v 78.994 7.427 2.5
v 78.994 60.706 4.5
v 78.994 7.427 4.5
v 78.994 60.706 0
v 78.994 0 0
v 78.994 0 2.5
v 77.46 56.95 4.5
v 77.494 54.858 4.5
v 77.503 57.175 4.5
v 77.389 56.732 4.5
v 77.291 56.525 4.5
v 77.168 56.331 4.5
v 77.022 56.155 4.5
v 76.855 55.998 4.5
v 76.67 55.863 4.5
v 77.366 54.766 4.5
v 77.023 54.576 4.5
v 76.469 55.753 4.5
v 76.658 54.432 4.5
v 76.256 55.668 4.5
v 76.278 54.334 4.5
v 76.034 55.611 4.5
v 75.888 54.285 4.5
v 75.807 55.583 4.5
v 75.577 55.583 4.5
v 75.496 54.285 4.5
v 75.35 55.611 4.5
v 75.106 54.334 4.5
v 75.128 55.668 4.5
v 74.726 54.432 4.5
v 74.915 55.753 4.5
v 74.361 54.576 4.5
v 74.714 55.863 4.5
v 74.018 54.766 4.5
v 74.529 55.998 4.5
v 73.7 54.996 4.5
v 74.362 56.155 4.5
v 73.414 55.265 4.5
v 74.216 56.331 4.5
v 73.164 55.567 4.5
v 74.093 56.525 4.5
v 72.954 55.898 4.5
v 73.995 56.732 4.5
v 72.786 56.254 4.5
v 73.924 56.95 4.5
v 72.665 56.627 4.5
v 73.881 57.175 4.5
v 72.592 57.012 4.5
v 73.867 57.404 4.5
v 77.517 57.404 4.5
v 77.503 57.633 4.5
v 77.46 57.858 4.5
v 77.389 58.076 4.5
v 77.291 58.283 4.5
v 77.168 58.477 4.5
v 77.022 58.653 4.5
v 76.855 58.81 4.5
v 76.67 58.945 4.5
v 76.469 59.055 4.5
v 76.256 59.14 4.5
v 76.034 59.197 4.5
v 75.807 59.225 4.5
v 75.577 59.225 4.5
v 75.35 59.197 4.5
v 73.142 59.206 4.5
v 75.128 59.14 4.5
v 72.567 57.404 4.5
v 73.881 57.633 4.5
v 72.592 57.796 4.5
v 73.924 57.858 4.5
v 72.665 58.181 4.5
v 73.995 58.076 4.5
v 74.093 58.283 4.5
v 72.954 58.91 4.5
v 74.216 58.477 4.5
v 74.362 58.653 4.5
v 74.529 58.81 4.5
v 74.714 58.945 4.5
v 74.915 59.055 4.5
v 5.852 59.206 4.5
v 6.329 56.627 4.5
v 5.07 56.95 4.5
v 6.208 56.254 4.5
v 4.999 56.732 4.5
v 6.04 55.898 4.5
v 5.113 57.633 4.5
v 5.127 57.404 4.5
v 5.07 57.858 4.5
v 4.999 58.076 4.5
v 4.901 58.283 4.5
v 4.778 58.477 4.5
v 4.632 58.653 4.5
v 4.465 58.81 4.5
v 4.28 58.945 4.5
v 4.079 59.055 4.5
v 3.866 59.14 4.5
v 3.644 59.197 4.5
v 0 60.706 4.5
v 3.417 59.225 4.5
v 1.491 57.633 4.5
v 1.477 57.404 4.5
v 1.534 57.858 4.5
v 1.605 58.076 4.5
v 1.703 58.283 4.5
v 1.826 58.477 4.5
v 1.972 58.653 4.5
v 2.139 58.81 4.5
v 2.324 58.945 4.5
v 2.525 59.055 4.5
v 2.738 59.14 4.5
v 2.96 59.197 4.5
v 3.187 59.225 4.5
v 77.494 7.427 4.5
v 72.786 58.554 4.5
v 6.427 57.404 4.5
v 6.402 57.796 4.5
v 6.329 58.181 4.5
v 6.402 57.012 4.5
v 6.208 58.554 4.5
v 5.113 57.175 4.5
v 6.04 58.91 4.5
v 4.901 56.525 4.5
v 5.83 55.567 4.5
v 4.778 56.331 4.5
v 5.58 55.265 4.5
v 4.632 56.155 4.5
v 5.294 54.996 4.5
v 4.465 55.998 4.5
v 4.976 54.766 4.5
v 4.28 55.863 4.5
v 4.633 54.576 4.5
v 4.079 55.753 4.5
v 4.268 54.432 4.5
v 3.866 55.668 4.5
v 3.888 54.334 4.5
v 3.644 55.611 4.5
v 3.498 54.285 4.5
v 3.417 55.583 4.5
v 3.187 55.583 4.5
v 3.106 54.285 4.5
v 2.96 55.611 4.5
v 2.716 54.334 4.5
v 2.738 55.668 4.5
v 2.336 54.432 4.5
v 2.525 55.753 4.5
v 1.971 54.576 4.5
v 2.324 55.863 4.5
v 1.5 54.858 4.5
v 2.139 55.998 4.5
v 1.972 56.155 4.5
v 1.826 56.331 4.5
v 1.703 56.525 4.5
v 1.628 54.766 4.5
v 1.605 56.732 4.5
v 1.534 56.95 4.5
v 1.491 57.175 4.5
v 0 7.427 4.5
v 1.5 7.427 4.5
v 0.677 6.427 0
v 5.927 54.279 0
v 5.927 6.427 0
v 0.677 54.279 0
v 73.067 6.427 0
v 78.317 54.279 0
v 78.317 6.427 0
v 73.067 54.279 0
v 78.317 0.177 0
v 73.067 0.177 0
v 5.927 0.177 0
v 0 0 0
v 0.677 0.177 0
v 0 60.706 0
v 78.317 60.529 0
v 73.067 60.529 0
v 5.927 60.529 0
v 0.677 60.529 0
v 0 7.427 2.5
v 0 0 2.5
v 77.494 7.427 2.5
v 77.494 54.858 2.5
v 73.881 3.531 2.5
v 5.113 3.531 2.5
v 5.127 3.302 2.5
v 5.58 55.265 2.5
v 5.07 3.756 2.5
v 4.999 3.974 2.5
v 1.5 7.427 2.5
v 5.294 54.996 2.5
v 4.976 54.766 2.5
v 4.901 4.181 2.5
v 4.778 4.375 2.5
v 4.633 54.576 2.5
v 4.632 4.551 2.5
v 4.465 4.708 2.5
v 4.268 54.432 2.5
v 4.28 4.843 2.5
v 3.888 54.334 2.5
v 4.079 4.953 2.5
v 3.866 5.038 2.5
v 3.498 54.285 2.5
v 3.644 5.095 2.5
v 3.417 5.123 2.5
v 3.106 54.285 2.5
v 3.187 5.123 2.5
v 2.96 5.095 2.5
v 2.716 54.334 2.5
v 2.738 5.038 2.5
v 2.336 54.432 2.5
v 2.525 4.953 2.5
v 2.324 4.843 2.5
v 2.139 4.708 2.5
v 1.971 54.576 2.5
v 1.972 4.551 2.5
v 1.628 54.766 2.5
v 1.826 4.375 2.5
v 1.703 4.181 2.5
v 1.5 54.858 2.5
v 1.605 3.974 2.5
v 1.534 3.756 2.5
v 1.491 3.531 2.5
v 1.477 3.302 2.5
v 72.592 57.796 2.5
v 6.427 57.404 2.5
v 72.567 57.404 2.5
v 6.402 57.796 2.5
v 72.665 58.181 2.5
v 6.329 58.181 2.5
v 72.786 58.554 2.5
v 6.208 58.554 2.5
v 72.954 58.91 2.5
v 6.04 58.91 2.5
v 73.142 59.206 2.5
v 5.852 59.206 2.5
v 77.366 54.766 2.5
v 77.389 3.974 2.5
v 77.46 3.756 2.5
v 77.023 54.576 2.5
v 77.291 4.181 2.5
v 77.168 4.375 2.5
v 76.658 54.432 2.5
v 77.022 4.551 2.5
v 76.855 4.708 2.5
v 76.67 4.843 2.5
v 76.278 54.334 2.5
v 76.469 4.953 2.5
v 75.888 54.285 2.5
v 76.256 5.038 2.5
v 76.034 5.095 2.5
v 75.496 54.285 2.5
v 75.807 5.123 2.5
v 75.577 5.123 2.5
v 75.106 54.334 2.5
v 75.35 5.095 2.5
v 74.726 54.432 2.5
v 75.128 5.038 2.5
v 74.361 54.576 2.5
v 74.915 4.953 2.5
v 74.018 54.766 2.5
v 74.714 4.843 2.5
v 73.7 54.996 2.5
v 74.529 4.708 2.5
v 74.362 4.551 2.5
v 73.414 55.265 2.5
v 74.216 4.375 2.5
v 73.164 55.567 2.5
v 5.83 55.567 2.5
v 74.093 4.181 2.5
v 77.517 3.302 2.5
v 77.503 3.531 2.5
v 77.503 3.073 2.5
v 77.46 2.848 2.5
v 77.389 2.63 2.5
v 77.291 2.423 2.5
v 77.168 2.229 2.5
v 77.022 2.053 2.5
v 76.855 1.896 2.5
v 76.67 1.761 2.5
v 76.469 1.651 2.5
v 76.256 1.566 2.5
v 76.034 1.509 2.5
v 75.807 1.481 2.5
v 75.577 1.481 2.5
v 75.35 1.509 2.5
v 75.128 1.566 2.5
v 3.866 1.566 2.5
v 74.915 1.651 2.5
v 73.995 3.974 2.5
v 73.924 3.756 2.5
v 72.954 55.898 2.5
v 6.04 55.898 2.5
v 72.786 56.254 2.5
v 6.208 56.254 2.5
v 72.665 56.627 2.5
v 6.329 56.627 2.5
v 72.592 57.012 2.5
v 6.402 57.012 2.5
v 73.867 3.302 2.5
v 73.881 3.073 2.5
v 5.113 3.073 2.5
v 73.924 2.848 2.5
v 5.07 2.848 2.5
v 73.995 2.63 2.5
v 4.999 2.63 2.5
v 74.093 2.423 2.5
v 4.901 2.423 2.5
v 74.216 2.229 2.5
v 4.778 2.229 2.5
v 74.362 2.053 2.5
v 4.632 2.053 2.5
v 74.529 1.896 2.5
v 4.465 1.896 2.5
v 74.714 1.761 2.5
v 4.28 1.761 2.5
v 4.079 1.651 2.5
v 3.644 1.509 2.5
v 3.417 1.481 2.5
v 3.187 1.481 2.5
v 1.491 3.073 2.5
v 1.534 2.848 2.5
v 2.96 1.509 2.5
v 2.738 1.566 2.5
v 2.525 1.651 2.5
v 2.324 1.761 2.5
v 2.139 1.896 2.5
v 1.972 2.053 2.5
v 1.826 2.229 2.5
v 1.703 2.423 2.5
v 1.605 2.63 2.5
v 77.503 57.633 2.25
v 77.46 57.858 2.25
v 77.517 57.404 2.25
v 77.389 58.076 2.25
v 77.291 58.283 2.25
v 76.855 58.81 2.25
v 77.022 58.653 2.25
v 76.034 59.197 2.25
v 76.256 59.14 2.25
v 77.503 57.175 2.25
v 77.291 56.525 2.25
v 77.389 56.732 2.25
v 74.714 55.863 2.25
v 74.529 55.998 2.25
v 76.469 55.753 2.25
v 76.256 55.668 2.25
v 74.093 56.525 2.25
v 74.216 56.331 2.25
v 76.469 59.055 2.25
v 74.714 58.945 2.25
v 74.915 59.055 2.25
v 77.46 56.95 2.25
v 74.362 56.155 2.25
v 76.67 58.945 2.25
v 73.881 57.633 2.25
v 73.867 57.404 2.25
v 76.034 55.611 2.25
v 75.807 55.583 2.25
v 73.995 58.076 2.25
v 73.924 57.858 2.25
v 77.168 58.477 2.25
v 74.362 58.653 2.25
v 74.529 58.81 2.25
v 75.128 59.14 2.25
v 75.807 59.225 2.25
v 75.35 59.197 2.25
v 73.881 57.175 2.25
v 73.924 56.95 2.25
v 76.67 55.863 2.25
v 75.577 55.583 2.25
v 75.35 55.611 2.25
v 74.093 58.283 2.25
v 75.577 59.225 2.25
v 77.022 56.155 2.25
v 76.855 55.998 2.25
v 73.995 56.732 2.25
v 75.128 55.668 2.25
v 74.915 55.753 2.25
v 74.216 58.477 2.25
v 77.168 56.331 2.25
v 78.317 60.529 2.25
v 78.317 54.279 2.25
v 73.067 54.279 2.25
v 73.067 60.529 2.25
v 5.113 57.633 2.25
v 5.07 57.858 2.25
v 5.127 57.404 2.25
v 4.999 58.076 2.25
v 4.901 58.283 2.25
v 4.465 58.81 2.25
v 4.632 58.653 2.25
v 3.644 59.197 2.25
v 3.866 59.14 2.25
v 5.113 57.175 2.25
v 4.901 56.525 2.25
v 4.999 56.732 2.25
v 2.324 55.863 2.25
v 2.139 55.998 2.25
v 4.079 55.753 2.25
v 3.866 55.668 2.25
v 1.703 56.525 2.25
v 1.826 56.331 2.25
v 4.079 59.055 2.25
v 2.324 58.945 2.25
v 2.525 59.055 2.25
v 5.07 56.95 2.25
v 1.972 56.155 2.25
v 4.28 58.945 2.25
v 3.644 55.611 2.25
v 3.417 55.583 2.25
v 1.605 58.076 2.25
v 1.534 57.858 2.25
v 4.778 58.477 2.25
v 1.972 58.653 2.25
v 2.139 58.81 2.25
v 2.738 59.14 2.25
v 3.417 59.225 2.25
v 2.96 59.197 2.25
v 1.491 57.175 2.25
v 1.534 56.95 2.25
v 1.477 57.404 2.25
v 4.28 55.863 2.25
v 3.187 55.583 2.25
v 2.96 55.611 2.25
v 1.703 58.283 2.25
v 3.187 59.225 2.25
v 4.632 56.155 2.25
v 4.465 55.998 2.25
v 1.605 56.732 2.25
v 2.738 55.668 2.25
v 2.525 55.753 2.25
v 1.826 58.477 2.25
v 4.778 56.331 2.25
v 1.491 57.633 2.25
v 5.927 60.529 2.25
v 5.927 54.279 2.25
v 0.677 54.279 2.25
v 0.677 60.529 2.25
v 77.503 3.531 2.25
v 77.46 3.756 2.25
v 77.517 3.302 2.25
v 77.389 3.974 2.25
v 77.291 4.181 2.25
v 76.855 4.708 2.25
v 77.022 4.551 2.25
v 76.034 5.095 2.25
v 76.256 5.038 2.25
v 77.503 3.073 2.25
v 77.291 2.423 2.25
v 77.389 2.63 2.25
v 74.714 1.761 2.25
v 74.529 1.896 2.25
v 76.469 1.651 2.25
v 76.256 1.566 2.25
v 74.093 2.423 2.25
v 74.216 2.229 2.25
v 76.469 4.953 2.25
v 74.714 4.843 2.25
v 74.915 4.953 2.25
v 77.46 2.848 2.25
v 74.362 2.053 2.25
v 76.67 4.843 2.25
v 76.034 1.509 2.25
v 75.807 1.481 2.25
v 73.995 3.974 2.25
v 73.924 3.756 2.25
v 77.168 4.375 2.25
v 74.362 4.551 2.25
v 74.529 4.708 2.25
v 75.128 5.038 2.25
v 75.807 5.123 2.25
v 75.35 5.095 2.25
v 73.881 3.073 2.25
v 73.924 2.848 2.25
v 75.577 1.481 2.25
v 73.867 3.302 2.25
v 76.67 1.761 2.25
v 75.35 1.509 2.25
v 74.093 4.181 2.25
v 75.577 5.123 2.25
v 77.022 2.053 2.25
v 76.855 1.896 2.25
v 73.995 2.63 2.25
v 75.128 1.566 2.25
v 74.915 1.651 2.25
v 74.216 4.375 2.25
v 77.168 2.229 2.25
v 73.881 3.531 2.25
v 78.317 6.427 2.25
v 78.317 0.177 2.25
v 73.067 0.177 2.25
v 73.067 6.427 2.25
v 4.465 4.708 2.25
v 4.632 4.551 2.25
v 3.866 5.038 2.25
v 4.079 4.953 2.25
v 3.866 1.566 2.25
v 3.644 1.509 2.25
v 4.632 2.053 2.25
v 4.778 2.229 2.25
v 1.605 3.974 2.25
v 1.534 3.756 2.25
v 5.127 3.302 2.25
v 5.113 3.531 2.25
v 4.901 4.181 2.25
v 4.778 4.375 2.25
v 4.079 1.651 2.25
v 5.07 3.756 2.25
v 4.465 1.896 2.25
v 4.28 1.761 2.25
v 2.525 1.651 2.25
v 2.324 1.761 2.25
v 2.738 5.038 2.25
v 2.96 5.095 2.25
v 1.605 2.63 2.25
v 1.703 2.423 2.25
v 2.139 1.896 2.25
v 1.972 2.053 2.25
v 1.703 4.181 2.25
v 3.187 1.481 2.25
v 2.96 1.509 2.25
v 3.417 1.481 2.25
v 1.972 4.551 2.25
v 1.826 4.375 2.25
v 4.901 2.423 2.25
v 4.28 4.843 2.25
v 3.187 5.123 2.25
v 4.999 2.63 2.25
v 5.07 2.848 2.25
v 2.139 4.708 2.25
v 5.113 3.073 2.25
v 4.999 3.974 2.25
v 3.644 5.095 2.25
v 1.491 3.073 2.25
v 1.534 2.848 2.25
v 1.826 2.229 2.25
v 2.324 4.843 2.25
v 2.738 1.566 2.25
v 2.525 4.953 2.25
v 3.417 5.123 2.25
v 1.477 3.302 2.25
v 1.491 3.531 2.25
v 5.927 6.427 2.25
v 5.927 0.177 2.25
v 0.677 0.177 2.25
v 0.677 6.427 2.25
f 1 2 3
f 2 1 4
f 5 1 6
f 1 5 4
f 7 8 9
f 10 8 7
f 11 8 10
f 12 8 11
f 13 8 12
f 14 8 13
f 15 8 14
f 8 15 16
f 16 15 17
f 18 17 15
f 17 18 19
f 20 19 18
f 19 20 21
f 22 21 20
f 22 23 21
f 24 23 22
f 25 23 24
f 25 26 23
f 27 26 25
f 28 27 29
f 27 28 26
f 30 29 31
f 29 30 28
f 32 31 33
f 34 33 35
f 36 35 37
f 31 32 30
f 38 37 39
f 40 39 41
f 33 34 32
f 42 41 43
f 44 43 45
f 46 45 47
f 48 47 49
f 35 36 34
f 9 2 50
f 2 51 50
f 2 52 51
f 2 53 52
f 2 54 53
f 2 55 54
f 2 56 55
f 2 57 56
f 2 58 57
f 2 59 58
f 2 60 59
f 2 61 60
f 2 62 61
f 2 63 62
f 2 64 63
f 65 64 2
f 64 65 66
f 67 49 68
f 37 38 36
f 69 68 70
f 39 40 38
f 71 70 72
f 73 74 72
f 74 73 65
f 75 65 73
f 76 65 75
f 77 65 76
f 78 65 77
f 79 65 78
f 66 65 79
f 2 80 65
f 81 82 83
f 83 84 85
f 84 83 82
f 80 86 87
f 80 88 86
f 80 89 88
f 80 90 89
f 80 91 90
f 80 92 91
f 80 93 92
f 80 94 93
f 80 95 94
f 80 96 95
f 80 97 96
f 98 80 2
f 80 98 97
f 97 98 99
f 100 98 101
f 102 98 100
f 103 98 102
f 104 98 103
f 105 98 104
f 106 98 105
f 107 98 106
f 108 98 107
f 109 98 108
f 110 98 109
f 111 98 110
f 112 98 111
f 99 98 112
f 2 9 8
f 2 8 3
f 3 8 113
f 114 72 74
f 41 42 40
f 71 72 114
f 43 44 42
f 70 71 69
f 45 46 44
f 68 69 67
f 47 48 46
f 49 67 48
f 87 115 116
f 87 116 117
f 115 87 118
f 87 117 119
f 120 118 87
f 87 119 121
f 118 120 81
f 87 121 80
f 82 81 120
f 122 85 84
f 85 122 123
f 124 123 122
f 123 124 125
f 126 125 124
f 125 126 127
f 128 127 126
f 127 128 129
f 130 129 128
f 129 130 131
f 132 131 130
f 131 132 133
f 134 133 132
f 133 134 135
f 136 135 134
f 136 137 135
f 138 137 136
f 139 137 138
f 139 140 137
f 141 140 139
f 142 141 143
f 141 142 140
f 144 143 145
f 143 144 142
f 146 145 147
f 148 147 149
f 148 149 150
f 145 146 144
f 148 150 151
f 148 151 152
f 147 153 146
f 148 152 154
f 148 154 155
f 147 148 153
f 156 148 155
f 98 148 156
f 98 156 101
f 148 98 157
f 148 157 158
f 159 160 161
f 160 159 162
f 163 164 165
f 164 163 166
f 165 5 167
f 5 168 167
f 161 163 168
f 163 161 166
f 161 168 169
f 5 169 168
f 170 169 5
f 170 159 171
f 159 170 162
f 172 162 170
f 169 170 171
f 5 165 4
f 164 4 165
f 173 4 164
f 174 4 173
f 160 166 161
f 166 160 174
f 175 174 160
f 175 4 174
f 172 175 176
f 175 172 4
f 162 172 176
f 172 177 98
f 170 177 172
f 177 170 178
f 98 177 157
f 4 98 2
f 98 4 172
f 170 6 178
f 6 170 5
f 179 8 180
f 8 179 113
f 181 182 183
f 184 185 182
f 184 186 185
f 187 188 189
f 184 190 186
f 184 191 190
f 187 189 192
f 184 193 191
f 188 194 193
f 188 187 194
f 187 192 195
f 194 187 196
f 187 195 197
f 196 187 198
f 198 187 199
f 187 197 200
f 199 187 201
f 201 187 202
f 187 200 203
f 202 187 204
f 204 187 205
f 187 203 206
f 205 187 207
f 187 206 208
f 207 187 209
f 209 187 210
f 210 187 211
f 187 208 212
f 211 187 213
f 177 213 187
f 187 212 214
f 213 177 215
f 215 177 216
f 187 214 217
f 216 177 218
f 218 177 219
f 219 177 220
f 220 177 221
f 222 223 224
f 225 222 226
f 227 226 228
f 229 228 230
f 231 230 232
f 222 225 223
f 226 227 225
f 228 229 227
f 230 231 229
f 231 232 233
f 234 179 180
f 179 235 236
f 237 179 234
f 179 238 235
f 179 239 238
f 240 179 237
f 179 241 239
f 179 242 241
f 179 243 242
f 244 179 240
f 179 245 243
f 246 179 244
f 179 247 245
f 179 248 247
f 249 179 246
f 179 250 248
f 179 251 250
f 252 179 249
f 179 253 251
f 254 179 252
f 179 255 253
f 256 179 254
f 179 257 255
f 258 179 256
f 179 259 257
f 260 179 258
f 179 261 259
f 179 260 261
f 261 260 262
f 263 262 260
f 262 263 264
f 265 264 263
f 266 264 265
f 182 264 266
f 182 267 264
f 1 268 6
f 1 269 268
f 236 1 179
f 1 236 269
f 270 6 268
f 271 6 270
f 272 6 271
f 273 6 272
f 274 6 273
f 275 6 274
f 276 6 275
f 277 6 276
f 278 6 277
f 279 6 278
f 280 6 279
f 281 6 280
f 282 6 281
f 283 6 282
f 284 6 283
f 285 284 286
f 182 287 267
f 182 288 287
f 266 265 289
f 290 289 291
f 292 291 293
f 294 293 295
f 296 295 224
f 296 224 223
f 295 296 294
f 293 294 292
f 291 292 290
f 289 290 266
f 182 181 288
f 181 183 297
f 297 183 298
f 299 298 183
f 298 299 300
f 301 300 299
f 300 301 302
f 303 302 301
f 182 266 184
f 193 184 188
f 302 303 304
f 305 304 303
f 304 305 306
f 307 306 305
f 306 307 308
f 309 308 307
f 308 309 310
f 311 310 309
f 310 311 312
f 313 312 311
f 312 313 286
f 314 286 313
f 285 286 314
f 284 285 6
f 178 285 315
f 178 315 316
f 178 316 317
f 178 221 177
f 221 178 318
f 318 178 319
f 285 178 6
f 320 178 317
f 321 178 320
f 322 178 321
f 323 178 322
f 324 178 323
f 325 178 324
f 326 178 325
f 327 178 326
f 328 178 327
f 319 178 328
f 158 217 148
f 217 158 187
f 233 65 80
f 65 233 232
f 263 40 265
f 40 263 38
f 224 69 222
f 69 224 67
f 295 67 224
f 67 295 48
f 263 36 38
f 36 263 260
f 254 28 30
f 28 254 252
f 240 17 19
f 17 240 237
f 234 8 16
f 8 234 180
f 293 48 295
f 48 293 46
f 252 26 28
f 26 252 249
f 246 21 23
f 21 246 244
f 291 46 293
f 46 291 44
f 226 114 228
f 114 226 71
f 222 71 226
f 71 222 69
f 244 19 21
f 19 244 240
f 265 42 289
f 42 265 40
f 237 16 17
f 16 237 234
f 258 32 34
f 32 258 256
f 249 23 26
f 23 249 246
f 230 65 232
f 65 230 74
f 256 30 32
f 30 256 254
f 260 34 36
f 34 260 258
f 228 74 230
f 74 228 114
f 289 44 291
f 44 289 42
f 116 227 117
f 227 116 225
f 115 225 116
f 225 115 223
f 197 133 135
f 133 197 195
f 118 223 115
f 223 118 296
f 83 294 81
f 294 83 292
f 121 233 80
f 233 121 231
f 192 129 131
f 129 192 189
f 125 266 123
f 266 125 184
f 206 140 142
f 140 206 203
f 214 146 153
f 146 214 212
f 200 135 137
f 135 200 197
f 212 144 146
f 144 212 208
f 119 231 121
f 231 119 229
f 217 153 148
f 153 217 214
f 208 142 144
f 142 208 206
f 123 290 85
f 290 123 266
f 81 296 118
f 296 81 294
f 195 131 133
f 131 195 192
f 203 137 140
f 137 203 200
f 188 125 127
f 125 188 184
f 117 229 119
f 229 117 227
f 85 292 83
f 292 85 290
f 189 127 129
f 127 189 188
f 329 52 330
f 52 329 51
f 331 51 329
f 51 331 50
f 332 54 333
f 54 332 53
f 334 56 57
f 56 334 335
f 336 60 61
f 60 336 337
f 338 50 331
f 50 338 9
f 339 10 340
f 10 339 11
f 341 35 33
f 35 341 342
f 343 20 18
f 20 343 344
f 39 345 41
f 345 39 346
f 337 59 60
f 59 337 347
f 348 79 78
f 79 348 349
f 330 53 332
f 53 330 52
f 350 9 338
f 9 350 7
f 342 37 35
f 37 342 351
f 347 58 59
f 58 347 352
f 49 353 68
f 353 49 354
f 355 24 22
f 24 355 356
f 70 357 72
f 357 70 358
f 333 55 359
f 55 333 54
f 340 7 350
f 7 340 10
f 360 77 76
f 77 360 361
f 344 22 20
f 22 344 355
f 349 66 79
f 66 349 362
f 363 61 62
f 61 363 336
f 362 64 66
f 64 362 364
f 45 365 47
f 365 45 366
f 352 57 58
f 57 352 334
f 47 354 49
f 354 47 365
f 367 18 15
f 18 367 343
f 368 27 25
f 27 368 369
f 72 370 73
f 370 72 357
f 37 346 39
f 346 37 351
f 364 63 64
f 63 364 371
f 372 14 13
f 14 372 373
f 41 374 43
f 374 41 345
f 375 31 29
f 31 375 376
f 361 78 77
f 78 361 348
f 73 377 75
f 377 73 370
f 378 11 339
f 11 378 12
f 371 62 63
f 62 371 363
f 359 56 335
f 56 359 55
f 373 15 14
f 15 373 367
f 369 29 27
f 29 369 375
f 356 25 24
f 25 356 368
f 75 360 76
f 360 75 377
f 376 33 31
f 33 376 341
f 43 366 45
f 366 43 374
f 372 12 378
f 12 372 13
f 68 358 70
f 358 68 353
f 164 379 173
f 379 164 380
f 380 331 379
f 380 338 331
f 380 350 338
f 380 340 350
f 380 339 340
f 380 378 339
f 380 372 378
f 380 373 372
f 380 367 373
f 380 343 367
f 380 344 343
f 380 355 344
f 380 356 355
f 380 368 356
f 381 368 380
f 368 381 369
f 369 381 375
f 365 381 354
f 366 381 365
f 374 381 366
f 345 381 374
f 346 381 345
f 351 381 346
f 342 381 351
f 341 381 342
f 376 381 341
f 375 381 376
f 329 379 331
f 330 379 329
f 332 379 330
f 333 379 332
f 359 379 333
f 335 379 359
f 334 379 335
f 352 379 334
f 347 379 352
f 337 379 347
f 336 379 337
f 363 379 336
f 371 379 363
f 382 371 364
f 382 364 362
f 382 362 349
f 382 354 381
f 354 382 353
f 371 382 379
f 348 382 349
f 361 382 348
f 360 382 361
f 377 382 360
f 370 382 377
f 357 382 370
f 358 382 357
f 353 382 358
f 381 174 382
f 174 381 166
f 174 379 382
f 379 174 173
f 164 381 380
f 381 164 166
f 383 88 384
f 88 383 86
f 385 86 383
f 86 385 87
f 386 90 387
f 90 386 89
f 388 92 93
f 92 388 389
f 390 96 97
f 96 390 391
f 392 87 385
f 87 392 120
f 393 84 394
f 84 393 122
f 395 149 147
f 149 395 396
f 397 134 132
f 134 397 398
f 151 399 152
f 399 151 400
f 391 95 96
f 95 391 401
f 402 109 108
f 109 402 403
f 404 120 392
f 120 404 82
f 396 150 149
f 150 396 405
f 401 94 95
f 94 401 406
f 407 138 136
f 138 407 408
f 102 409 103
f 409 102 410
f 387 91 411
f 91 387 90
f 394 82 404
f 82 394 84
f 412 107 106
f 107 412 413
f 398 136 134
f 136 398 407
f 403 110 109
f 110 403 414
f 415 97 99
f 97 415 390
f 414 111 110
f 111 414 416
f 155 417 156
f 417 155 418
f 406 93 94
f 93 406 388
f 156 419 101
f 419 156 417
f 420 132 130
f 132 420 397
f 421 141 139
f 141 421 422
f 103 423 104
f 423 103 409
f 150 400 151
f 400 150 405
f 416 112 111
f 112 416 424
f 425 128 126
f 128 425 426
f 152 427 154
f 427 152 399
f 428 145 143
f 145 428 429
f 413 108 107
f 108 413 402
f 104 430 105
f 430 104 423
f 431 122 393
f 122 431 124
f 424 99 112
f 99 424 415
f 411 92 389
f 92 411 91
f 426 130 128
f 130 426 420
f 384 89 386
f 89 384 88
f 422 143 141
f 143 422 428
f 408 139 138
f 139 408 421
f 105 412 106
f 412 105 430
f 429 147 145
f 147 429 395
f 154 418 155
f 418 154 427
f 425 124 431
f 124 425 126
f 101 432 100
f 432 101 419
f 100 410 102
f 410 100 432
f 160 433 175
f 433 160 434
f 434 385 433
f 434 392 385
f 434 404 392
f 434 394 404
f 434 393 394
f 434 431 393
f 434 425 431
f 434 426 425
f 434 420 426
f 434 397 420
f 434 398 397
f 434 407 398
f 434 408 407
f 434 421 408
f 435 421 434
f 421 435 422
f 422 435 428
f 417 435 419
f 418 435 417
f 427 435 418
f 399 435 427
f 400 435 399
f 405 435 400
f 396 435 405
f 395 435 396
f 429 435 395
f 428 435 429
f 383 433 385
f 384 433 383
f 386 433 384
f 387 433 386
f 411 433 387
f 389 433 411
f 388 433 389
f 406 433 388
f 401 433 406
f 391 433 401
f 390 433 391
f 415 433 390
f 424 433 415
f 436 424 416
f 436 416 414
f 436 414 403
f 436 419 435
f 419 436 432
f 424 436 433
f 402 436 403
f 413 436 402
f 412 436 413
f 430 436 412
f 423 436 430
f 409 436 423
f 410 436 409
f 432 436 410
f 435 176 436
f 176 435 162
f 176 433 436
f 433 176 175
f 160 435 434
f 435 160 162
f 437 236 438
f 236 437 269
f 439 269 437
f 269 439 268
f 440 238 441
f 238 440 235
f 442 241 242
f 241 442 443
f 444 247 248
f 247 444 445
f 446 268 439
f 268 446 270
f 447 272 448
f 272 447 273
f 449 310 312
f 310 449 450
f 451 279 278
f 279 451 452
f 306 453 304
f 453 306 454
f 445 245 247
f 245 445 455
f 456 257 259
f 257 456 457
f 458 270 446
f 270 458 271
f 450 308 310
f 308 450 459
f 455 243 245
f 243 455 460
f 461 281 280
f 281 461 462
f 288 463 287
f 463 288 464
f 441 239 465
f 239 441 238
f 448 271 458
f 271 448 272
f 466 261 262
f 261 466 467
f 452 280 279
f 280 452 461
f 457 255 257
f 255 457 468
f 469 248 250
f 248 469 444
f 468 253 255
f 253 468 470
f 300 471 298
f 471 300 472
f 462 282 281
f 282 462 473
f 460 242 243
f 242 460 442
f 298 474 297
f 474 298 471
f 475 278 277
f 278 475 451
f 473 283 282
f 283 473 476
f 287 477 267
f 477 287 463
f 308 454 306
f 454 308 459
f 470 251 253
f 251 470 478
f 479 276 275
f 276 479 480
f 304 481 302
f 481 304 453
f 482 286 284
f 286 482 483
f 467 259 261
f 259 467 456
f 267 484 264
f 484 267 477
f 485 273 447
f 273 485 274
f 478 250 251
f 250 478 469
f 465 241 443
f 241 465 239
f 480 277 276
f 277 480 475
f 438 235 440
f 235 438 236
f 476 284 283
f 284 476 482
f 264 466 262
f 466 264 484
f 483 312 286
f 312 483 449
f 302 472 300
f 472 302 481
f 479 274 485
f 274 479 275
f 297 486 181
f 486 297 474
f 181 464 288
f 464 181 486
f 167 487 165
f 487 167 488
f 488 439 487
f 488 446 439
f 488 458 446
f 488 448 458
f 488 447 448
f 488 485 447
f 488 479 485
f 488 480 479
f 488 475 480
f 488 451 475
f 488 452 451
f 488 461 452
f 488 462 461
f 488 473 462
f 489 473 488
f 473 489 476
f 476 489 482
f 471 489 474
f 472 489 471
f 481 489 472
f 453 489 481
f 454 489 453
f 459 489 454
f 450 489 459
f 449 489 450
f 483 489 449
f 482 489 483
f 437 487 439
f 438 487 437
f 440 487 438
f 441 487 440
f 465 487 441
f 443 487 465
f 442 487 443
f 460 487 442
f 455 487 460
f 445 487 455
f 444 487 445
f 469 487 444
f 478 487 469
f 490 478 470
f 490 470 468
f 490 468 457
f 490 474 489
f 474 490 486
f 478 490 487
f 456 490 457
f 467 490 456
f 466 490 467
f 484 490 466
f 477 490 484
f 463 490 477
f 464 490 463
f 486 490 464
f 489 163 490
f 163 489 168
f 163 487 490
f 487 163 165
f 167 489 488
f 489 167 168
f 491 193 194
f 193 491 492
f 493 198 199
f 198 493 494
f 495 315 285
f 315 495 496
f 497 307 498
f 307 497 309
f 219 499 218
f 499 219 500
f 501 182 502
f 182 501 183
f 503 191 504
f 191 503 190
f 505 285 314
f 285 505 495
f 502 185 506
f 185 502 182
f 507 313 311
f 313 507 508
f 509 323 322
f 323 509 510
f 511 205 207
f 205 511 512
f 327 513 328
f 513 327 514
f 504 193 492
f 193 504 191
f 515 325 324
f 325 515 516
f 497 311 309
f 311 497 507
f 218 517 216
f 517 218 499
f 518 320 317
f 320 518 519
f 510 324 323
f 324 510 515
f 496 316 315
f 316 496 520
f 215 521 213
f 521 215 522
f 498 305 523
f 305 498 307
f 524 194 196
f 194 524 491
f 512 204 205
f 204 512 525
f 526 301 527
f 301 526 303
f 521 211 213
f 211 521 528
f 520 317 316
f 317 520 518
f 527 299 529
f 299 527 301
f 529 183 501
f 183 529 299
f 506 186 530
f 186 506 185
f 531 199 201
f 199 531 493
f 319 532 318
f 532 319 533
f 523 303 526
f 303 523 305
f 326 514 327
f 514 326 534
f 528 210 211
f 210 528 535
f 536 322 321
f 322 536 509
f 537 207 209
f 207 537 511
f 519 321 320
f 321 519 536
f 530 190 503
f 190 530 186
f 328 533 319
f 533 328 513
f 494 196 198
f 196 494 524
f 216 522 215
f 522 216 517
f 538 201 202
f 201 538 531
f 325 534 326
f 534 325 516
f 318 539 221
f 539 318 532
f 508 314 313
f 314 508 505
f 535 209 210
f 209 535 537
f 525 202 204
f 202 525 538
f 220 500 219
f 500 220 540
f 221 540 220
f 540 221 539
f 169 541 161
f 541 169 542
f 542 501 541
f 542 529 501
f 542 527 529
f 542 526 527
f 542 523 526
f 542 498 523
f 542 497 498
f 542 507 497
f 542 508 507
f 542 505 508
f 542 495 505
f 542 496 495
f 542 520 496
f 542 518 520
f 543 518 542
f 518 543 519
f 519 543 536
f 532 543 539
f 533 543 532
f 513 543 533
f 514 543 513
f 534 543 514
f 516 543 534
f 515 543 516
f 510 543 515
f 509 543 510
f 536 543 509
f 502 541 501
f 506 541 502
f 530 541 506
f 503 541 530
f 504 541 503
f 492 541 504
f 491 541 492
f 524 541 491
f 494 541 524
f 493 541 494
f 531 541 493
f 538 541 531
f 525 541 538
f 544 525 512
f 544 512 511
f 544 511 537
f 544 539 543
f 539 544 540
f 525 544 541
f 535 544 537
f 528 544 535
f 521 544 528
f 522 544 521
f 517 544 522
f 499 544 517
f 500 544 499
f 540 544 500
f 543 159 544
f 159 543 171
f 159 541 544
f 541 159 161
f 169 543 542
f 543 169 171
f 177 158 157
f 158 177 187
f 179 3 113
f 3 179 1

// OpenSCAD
$fn = 50;
pcb_width = 78.994;
pcb_height = 60.706;
housing_thickness = 2.5;
mounting_hole_inset = 3.302;
mounting_hole_keepout = 4;
mounting_hole_diameter = 3.25;
hole_tolerance = 0.2;
pcb_standoff = 2;
pcb_standoff_width = 1.5;
nut_width = 5.25;
nut_height = 6.25;
nut_depth = 2.25;
difference()
{
    union()
    {
        difference()
        {
            cube([pcb_width, pcb_height, housing_thickness+pcb_standoff]);
            translate([pcb_standoff_width,pcb_standoff_width,housing_thickness])
            {   
                cube([pcb_width-2*pcb_standoff_width, pcb_height-2*pcb_standoff_width, pcb_standoff]);
            }
        }
        translate([mounting_hole_inset,mounting_hole_inset,0])cylinder(r=mounting_hole_diameter/2+pcb_standoff_width, h = pcb_standoff + housing_thickness);
        translate([pcb_width-mounting_hole_inset,mounting_hole_inset,0])cylinder(r=mounting_hole_diameter/2+pcb_standoff_width, h = pcb_standoff + housing_thickness);
        translate([pcb_width-mounting_hole_inset,pcb_height-mounting_hole_inset,0])cylinder(r=mounting_hole_diameter/2+pcb_standoff_width, h = pcb_standoff + housing_thickness);
        translate([mounting_hole_inset,pcb_height-mounting_hole_inset,0])cylinder(r=mounting_hole_diameter/2+pcb_standoff_width, h = pcb_standoff + housing_thickness);
    }
    translate([pcb_width-mounting_hole_inset,pcb_height-mounting_hole_inset,0])
    {
        cylinder(r=mounting_hole_diameter/2+hole_tolerance, h = pcb_standoff + housing_thickness);
        cube([nut_width, nut_height, nut_depth*2], center=true);
    }
    translate([mounting_hole_inset,pcb_height-mounting_hole_inset,0])
    {
        cylinder(r=mounting_hole_diameter/2+hole_tolerance, h = pcb_standoff + housing_thickness);
        cube([nut_width, nut_height, nut_depth*2], center=true);
    }
    translate([pcb_width-mounting_hole_inset,mounting_hole_inset,0])
    {
        cylinder(r=mounting_hole_diameter/2+hole_tolerance, h = pcb_standoff + housing_thickness);
        cube([nut_width, nut_height, nut_depth*2], center=true);
    }
    translate([mounting_hole_inset,mounting_hole_inset,0])
    {
        cylinder(r=mounting_hole_diameter/2+hole_tolerance, h = pcb_standoff + housing_thickness);
        cube([nut_width, nut_height, nut_depth*2], center=true);
    }    
    translate([0,0,housing_thickness]) cube([pcb_width, mounting_hole_inset+mounting_hole_diameter/2+pcb_standoff_width+1, pcb_standoff]);
}
